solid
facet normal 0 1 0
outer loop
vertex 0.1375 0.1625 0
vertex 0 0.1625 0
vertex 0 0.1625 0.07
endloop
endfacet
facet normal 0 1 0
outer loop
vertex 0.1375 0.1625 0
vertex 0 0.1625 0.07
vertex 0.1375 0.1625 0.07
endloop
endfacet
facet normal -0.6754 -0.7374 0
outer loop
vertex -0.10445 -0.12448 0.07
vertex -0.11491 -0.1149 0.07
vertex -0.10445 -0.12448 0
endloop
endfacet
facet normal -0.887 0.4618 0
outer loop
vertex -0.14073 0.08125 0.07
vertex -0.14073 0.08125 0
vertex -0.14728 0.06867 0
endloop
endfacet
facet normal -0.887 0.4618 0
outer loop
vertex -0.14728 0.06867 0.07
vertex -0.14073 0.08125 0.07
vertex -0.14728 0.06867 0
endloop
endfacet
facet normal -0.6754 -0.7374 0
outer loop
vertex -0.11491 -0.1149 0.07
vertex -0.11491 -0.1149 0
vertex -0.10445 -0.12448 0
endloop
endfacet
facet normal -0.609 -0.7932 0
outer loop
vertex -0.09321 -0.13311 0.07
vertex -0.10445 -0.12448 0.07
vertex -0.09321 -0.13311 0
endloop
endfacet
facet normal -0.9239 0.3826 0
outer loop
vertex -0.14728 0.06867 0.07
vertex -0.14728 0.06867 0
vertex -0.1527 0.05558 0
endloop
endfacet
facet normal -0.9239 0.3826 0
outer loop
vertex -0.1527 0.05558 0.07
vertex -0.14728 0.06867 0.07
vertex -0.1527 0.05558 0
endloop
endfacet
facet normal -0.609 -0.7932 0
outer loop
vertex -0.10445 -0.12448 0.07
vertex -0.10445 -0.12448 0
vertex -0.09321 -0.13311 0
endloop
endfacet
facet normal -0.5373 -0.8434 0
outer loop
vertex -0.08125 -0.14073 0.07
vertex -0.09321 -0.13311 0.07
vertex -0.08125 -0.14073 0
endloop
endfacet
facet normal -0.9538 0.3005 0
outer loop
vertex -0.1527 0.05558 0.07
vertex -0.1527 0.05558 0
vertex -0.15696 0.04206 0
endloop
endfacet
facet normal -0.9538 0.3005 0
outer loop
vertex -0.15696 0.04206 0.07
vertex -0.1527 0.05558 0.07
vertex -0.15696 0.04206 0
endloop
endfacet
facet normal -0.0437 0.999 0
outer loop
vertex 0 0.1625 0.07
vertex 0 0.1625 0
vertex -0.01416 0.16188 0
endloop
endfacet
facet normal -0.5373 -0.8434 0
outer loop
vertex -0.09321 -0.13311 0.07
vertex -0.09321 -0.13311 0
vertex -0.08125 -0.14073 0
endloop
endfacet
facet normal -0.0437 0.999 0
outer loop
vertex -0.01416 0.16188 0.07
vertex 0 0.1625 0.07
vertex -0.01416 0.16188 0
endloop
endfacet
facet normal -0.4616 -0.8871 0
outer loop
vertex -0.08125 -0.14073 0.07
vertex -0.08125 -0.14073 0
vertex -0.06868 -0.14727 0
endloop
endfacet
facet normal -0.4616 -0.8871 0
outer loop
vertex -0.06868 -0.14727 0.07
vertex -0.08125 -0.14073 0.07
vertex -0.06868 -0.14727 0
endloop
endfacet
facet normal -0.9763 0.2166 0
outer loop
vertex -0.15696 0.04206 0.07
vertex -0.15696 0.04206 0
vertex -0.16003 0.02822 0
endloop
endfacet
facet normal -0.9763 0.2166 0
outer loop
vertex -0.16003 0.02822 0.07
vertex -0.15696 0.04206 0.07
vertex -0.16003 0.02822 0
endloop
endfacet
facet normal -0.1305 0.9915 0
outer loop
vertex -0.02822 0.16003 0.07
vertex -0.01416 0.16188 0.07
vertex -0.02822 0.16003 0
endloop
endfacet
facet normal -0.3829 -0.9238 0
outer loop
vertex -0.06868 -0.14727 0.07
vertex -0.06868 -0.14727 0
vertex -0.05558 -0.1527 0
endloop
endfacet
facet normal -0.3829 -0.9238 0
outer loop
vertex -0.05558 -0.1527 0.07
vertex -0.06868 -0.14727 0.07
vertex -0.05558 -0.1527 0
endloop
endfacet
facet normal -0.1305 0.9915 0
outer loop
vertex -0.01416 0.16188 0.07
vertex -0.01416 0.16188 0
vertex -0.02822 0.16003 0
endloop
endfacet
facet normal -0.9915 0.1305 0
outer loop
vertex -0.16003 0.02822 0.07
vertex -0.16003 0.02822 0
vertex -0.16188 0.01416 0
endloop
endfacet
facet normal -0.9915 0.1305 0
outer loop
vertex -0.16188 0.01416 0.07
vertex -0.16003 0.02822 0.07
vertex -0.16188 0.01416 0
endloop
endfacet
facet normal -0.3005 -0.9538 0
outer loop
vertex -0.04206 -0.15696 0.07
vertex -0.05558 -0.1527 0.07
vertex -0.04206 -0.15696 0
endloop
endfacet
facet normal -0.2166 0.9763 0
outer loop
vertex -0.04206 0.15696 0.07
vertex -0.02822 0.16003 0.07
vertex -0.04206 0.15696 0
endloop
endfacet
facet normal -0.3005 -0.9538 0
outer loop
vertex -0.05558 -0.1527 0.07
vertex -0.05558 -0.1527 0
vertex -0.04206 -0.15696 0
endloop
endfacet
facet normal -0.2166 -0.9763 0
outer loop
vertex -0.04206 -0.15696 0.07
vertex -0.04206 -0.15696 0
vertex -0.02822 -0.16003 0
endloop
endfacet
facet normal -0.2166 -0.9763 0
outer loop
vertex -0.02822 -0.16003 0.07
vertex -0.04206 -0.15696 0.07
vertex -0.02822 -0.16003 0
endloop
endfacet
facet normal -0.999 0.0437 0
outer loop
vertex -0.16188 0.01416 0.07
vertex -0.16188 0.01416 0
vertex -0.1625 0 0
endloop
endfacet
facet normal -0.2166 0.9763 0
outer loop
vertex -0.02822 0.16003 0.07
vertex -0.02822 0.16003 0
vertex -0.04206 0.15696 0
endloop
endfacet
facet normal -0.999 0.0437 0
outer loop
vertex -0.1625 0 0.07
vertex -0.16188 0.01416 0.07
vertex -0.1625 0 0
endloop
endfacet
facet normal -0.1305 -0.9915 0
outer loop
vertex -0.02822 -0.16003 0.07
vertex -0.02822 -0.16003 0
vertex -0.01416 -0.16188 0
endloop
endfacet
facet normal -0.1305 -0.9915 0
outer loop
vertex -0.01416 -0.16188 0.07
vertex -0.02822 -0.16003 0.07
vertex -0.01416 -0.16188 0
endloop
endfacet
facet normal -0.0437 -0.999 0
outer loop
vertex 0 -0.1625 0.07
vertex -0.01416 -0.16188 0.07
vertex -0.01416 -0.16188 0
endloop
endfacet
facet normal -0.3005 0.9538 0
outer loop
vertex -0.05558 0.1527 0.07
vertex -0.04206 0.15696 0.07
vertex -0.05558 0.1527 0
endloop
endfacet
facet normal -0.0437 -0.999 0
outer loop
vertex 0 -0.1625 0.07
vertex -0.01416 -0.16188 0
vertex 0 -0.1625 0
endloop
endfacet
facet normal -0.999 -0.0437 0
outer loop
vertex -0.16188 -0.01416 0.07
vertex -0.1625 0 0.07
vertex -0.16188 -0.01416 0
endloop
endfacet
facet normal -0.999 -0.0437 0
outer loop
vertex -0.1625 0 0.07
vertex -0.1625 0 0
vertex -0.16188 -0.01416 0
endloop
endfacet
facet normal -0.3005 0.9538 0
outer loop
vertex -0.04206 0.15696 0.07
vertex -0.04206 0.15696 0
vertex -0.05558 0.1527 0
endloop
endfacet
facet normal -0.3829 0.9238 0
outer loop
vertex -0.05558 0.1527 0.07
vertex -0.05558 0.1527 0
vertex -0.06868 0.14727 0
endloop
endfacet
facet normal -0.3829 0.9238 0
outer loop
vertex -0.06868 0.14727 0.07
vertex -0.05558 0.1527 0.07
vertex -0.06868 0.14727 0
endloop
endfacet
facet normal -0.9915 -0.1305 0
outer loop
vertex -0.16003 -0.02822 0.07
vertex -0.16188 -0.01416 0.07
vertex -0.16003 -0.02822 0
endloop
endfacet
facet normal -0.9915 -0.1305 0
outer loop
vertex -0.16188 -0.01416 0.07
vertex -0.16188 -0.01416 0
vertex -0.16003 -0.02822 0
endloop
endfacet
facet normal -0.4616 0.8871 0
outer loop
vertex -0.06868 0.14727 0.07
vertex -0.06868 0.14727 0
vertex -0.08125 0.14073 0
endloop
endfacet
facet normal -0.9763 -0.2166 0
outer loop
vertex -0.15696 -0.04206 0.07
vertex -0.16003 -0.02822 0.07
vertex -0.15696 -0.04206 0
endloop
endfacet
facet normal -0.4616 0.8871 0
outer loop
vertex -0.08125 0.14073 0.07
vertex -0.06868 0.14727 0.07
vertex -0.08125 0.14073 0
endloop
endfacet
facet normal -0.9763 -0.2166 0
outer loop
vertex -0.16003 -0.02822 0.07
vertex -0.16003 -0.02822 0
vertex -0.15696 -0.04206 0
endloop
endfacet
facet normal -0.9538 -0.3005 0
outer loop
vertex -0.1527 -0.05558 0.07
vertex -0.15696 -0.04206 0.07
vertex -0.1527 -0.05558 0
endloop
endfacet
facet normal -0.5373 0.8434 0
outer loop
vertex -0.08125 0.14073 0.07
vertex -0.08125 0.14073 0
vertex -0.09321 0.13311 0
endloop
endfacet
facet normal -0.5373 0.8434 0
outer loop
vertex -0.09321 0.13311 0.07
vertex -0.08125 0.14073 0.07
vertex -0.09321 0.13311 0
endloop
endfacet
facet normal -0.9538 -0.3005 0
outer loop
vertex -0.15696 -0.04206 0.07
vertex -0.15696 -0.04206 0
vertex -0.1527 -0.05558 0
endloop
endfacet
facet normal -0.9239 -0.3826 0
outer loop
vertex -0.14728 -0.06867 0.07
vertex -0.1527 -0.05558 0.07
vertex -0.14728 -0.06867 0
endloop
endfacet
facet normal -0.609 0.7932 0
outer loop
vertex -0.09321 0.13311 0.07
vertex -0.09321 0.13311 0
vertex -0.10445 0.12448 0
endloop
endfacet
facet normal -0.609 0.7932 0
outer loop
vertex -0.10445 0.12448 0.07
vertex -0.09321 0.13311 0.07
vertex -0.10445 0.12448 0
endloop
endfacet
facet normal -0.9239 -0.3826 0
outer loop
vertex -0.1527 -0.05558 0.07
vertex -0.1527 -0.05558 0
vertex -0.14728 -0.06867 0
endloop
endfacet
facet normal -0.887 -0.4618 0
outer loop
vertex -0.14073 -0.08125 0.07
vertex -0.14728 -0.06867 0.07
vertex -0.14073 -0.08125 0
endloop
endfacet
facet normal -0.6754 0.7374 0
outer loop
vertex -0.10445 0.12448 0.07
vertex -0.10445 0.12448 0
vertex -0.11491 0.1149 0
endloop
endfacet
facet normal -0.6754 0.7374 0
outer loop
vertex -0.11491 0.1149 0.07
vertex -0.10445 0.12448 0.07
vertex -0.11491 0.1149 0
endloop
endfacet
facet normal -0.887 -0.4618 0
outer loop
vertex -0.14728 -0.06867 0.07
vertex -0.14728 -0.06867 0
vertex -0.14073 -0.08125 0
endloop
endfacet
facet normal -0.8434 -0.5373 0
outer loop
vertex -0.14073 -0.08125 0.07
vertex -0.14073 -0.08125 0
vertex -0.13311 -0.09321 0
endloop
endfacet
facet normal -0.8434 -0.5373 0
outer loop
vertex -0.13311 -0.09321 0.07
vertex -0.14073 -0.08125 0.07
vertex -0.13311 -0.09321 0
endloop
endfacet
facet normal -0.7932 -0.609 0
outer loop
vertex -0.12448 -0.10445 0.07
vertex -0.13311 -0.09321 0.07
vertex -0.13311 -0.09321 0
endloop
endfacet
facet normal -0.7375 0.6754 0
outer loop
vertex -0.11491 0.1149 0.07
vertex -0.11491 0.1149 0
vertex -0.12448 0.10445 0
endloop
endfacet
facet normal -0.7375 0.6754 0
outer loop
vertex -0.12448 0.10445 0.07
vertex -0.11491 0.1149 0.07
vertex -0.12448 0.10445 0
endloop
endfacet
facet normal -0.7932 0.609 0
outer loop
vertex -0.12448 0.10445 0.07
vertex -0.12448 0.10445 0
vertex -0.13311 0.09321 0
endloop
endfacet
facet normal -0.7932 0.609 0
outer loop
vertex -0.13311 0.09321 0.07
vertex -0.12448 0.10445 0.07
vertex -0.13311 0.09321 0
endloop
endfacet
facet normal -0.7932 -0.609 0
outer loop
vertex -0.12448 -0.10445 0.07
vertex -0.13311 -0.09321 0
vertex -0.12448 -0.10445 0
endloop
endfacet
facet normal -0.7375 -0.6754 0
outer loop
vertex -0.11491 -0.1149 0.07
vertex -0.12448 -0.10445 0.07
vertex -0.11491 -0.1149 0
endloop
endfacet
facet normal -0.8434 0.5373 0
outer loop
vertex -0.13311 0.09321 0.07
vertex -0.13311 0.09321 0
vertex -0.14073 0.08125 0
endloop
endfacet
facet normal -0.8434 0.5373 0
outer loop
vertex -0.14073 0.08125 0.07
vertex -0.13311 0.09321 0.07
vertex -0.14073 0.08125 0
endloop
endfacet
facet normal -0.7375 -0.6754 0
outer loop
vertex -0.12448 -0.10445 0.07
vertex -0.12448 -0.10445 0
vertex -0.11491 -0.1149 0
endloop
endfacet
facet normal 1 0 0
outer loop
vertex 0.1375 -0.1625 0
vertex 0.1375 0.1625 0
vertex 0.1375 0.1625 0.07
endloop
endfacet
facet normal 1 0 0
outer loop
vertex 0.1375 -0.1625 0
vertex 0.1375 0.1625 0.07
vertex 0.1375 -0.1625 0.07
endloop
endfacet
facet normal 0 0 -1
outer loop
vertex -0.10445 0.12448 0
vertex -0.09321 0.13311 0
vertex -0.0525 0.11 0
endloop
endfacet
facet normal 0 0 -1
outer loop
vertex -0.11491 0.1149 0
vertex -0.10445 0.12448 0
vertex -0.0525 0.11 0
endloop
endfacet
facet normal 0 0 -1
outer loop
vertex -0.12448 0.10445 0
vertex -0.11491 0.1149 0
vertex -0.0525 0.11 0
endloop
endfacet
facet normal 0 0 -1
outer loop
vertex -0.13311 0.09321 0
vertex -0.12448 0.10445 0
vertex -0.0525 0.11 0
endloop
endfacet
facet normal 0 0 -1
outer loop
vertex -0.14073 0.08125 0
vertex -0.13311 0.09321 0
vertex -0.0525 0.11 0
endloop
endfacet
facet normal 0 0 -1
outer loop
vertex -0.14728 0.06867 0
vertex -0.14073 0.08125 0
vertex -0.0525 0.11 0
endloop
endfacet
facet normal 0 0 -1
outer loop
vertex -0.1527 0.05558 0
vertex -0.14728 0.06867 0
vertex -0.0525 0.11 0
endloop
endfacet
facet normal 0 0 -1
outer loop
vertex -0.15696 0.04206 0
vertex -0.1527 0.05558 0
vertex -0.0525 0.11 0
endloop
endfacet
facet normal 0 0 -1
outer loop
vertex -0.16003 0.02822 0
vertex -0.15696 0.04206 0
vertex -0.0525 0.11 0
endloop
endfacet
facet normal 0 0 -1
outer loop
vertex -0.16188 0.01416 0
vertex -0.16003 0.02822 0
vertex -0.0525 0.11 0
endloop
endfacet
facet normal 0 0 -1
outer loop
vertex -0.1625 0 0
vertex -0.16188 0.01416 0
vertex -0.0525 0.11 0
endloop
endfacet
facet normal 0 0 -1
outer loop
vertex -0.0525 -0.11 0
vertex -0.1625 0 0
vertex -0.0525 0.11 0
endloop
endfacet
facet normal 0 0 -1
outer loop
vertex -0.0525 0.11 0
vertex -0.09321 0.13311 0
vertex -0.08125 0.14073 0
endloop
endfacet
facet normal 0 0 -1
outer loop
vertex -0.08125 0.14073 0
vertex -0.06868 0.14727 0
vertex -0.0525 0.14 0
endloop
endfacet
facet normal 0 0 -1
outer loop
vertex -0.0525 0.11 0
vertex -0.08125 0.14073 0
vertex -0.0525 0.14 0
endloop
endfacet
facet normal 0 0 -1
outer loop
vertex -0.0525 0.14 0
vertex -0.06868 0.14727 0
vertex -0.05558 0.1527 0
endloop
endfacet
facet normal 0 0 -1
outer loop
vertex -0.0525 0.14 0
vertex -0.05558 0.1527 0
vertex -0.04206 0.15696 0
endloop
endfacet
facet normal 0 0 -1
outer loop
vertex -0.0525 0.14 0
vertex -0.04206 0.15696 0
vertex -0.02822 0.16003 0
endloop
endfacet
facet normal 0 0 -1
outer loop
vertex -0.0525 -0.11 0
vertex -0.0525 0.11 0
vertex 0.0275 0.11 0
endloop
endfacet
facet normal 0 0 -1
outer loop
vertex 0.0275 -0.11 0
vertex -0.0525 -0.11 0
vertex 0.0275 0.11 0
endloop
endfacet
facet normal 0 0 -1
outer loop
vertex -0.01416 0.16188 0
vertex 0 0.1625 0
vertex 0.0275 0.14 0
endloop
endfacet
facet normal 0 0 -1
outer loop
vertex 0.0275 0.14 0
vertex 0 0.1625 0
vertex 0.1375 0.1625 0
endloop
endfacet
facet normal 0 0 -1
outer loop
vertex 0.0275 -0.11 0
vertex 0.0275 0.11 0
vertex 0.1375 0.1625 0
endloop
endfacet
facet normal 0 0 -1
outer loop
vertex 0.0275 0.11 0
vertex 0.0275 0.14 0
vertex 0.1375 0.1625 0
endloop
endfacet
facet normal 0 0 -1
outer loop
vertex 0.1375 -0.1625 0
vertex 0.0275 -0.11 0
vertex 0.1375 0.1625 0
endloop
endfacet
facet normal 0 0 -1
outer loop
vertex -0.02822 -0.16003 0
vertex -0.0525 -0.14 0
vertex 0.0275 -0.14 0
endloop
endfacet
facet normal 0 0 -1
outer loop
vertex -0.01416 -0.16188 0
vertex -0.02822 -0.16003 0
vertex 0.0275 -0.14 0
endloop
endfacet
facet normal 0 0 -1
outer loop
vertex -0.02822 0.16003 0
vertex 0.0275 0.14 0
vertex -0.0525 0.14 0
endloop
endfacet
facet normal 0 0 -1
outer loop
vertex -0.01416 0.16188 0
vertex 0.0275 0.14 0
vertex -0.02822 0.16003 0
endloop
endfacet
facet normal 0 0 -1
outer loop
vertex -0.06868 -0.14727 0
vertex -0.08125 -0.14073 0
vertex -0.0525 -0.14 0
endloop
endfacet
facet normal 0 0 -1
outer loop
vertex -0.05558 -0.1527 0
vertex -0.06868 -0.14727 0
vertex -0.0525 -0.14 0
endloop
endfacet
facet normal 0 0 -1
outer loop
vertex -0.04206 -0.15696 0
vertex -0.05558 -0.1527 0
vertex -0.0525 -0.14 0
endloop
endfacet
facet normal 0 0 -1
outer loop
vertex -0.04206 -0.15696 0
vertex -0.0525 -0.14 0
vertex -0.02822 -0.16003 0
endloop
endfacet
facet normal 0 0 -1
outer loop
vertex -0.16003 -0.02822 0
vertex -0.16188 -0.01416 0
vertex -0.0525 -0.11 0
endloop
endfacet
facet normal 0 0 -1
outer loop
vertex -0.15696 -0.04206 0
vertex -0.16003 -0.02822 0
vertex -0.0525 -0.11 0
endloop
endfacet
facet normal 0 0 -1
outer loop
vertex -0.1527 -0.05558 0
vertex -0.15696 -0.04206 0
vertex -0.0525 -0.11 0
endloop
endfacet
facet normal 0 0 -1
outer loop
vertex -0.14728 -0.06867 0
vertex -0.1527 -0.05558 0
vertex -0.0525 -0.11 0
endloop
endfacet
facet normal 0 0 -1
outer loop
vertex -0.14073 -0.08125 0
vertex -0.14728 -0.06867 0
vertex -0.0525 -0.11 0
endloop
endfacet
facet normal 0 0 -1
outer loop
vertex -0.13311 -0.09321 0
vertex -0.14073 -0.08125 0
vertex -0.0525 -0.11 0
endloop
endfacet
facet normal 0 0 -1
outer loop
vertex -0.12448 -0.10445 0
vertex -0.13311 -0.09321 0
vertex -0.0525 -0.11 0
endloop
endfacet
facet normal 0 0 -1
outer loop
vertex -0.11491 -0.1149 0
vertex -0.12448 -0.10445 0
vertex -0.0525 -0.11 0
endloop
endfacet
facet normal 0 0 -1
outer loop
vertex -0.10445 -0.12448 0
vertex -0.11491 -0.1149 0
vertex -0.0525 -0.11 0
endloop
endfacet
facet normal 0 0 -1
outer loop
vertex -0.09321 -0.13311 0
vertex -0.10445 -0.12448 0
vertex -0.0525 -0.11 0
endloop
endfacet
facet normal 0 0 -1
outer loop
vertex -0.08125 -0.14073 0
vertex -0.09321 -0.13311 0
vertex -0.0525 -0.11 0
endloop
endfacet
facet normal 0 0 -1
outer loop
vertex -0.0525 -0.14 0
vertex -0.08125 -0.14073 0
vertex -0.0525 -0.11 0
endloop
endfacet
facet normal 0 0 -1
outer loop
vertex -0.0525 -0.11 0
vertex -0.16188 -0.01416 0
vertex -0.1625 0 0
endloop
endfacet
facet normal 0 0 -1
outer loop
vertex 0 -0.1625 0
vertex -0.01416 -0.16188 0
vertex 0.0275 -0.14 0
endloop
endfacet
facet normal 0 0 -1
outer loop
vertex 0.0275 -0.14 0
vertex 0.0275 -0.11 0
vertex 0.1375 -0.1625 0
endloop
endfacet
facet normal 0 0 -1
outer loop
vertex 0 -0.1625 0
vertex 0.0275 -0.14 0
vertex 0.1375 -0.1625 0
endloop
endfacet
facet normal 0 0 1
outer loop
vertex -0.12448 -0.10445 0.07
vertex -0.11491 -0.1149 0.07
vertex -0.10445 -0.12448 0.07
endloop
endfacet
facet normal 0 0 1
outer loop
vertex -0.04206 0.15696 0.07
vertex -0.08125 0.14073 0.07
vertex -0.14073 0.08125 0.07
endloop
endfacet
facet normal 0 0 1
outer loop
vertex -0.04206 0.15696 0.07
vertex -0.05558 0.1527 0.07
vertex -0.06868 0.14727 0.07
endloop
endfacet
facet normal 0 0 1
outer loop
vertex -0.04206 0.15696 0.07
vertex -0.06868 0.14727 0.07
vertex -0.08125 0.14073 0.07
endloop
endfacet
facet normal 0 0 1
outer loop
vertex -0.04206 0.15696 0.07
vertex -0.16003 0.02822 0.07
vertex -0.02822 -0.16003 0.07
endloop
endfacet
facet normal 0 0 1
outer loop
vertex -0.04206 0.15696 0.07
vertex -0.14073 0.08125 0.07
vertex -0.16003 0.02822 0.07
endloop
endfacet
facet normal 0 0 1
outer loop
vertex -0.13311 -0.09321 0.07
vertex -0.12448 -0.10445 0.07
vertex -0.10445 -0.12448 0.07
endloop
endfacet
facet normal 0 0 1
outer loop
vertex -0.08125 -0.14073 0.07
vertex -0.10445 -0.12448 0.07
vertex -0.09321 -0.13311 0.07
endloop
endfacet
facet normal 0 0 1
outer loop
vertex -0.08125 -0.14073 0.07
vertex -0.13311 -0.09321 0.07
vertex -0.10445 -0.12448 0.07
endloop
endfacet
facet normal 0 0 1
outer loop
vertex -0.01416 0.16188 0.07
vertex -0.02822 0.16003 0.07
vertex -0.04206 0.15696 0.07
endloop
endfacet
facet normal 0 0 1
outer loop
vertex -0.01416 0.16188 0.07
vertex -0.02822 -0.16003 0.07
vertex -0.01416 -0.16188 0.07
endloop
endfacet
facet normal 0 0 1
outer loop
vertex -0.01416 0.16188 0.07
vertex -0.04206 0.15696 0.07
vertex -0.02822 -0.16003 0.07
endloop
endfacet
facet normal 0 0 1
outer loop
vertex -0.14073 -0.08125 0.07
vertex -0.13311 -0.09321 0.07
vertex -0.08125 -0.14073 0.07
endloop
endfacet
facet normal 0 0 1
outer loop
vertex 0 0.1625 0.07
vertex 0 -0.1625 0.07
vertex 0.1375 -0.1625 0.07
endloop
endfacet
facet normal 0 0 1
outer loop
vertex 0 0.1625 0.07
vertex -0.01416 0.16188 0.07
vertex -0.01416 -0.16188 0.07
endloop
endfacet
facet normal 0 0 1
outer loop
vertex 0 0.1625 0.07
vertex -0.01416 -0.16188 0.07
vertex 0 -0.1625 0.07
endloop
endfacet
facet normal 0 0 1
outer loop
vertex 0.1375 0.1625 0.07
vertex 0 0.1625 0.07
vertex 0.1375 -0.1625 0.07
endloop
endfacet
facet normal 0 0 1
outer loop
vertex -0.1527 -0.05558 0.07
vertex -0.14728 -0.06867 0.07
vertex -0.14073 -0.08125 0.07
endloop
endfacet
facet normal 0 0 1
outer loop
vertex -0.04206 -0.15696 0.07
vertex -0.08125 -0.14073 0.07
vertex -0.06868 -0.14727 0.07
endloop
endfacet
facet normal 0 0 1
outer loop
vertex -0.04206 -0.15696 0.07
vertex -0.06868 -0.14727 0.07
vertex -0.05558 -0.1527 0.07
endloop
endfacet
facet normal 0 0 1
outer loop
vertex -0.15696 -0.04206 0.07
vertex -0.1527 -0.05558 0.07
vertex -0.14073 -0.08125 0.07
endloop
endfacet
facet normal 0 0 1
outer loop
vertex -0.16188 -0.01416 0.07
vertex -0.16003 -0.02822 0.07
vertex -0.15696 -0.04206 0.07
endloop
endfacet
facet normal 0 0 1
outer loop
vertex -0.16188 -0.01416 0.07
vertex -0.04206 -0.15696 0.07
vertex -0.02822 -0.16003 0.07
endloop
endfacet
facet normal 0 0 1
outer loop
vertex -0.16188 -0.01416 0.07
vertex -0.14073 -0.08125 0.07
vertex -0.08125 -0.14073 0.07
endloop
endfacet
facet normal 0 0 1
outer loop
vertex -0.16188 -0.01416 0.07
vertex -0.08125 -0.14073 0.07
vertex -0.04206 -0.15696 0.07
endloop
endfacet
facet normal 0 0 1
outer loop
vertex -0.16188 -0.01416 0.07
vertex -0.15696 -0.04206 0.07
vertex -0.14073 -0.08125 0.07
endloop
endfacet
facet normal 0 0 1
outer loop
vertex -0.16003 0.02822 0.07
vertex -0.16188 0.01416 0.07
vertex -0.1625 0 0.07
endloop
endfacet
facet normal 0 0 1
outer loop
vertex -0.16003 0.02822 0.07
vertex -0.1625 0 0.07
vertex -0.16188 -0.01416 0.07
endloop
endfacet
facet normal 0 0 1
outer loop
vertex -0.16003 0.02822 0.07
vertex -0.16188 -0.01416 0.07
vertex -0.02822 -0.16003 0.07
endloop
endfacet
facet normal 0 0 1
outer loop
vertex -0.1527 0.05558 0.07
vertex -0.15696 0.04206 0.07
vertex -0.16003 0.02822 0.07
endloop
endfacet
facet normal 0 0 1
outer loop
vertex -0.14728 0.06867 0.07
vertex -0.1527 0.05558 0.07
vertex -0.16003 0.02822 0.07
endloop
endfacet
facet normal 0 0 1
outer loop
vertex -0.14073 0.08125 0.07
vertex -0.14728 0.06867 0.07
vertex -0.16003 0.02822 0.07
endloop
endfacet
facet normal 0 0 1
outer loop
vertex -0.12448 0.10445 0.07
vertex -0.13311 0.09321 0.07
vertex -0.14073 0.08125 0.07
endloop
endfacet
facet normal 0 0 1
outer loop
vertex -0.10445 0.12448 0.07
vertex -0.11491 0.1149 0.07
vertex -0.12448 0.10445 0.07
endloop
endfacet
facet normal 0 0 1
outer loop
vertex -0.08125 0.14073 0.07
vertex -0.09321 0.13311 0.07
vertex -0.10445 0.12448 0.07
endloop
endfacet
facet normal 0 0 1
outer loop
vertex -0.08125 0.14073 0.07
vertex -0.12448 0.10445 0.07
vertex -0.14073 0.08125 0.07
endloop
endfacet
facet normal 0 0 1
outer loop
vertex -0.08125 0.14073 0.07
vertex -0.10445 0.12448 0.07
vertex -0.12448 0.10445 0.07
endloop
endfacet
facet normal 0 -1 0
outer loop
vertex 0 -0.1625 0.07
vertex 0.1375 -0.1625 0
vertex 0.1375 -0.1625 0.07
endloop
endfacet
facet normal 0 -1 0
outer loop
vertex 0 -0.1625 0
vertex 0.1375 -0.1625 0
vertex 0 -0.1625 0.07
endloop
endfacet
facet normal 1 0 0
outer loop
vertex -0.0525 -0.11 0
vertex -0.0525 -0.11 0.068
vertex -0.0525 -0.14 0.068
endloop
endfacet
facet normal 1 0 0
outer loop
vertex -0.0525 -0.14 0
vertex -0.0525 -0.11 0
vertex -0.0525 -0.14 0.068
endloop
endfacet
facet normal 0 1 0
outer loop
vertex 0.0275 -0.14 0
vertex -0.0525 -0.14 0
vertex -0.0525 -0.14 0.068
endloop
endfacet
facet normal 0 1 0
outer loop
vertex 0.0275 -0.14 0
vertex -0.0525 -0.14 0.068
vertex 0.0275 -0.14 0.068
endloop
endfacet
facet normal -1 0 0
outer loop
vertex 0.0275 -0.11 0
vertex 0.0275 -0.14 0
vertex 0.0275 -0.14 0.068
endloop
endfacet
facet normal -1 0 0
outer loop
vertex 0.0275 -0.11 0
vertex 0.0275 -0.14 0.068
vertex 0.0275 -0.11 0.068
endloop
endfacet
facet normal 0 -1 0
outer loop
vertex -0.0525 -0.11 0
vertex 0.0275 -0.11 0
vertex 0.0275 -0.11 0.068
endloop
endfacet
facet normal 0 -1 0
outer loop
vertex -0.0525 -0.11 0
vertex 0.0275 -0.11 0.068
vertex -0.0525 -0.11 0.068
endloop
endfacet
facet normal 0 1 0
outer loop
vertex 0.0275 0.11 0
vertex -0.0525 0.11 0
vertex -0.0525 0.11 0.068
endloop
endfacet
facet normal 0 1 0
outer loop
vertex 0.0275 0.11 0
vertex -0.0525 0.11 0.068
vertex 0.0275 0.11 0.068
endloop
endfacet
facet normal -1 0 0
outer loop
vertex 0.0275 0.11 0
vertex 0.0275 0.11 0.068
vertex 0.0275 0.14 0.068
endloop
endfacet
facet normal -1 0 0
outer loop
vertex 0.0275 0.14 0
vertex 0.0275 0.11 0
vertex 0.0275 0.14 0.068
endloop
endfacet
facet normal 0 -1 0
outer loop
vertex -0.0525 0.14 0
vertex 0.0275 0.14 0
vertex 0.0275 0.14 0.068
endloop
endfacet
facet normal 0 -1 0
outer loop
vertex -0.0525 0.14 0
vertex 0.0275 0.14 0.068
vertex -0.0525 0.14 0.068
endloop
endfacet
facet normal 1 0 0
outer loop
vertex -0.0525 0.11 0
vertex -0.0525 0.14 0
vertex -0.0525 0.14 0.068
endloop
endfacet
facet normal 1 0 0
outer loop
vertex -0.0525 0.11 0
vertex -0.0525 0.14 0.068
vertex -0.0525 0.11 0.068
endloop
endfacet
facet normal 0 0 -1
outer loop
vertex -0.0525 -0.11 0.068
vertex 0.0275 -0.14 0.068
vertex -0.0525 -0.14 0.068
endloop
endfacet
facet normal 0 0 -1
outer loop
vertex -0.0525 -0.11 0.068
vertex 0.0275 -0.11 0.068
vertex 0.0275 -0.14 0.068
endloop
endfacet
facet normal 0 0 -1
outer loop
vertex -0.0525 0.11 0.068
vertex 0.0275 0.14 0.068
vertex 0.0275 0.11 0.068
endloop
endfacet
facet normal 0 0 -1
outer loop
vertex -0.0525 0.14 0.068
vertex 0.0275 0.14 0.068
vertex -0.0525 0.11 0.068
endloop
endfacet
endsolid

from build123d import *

# Parameters (mm, degrees)
PAD_DEPTH    = 0.07
SKETCH001_W  = 0.08
SKETCH001_H  = 0.03
POCKET_DEPTH = 0.068


with BuildPart() as part:
    # Sketch → Pad (new body)
    with BuildSketch(Plane.XY):
        with BuildLine():
            Line((-2e-06, 0.1625), (0.137498, 0.1625))
            Line((0.137498, 0.1625), (0.137498, -0.1625))
            Line((0.137498, -0.1625), (-2e-06, -0.1625))
            ThreePointArc((-2e-06, 0.1625), (-0.1625, 0), (-2e-06, -0.1625))
        make_face()
    extrude(amount=PAD_DEPTH)

    # Sketch001 → Pocket (cut)
    with BuildSketch(Plane(origin=(0, 0, 0), x_dir=(1, 0, 0), z_dir=(0, 0, -1))):
        with Locations((-0.0125, 0.125)):
            Rectangle(SKETCH001_W, SKETCH001_H)
        with Locations((-0.0125, -0.125)):
            Rectangle(SKETCH001_W, SKETCH001_H)
    extrude(amount=-POCKET_DEPTH, mode=Mode.SUBTRACT)


solid = part.part
